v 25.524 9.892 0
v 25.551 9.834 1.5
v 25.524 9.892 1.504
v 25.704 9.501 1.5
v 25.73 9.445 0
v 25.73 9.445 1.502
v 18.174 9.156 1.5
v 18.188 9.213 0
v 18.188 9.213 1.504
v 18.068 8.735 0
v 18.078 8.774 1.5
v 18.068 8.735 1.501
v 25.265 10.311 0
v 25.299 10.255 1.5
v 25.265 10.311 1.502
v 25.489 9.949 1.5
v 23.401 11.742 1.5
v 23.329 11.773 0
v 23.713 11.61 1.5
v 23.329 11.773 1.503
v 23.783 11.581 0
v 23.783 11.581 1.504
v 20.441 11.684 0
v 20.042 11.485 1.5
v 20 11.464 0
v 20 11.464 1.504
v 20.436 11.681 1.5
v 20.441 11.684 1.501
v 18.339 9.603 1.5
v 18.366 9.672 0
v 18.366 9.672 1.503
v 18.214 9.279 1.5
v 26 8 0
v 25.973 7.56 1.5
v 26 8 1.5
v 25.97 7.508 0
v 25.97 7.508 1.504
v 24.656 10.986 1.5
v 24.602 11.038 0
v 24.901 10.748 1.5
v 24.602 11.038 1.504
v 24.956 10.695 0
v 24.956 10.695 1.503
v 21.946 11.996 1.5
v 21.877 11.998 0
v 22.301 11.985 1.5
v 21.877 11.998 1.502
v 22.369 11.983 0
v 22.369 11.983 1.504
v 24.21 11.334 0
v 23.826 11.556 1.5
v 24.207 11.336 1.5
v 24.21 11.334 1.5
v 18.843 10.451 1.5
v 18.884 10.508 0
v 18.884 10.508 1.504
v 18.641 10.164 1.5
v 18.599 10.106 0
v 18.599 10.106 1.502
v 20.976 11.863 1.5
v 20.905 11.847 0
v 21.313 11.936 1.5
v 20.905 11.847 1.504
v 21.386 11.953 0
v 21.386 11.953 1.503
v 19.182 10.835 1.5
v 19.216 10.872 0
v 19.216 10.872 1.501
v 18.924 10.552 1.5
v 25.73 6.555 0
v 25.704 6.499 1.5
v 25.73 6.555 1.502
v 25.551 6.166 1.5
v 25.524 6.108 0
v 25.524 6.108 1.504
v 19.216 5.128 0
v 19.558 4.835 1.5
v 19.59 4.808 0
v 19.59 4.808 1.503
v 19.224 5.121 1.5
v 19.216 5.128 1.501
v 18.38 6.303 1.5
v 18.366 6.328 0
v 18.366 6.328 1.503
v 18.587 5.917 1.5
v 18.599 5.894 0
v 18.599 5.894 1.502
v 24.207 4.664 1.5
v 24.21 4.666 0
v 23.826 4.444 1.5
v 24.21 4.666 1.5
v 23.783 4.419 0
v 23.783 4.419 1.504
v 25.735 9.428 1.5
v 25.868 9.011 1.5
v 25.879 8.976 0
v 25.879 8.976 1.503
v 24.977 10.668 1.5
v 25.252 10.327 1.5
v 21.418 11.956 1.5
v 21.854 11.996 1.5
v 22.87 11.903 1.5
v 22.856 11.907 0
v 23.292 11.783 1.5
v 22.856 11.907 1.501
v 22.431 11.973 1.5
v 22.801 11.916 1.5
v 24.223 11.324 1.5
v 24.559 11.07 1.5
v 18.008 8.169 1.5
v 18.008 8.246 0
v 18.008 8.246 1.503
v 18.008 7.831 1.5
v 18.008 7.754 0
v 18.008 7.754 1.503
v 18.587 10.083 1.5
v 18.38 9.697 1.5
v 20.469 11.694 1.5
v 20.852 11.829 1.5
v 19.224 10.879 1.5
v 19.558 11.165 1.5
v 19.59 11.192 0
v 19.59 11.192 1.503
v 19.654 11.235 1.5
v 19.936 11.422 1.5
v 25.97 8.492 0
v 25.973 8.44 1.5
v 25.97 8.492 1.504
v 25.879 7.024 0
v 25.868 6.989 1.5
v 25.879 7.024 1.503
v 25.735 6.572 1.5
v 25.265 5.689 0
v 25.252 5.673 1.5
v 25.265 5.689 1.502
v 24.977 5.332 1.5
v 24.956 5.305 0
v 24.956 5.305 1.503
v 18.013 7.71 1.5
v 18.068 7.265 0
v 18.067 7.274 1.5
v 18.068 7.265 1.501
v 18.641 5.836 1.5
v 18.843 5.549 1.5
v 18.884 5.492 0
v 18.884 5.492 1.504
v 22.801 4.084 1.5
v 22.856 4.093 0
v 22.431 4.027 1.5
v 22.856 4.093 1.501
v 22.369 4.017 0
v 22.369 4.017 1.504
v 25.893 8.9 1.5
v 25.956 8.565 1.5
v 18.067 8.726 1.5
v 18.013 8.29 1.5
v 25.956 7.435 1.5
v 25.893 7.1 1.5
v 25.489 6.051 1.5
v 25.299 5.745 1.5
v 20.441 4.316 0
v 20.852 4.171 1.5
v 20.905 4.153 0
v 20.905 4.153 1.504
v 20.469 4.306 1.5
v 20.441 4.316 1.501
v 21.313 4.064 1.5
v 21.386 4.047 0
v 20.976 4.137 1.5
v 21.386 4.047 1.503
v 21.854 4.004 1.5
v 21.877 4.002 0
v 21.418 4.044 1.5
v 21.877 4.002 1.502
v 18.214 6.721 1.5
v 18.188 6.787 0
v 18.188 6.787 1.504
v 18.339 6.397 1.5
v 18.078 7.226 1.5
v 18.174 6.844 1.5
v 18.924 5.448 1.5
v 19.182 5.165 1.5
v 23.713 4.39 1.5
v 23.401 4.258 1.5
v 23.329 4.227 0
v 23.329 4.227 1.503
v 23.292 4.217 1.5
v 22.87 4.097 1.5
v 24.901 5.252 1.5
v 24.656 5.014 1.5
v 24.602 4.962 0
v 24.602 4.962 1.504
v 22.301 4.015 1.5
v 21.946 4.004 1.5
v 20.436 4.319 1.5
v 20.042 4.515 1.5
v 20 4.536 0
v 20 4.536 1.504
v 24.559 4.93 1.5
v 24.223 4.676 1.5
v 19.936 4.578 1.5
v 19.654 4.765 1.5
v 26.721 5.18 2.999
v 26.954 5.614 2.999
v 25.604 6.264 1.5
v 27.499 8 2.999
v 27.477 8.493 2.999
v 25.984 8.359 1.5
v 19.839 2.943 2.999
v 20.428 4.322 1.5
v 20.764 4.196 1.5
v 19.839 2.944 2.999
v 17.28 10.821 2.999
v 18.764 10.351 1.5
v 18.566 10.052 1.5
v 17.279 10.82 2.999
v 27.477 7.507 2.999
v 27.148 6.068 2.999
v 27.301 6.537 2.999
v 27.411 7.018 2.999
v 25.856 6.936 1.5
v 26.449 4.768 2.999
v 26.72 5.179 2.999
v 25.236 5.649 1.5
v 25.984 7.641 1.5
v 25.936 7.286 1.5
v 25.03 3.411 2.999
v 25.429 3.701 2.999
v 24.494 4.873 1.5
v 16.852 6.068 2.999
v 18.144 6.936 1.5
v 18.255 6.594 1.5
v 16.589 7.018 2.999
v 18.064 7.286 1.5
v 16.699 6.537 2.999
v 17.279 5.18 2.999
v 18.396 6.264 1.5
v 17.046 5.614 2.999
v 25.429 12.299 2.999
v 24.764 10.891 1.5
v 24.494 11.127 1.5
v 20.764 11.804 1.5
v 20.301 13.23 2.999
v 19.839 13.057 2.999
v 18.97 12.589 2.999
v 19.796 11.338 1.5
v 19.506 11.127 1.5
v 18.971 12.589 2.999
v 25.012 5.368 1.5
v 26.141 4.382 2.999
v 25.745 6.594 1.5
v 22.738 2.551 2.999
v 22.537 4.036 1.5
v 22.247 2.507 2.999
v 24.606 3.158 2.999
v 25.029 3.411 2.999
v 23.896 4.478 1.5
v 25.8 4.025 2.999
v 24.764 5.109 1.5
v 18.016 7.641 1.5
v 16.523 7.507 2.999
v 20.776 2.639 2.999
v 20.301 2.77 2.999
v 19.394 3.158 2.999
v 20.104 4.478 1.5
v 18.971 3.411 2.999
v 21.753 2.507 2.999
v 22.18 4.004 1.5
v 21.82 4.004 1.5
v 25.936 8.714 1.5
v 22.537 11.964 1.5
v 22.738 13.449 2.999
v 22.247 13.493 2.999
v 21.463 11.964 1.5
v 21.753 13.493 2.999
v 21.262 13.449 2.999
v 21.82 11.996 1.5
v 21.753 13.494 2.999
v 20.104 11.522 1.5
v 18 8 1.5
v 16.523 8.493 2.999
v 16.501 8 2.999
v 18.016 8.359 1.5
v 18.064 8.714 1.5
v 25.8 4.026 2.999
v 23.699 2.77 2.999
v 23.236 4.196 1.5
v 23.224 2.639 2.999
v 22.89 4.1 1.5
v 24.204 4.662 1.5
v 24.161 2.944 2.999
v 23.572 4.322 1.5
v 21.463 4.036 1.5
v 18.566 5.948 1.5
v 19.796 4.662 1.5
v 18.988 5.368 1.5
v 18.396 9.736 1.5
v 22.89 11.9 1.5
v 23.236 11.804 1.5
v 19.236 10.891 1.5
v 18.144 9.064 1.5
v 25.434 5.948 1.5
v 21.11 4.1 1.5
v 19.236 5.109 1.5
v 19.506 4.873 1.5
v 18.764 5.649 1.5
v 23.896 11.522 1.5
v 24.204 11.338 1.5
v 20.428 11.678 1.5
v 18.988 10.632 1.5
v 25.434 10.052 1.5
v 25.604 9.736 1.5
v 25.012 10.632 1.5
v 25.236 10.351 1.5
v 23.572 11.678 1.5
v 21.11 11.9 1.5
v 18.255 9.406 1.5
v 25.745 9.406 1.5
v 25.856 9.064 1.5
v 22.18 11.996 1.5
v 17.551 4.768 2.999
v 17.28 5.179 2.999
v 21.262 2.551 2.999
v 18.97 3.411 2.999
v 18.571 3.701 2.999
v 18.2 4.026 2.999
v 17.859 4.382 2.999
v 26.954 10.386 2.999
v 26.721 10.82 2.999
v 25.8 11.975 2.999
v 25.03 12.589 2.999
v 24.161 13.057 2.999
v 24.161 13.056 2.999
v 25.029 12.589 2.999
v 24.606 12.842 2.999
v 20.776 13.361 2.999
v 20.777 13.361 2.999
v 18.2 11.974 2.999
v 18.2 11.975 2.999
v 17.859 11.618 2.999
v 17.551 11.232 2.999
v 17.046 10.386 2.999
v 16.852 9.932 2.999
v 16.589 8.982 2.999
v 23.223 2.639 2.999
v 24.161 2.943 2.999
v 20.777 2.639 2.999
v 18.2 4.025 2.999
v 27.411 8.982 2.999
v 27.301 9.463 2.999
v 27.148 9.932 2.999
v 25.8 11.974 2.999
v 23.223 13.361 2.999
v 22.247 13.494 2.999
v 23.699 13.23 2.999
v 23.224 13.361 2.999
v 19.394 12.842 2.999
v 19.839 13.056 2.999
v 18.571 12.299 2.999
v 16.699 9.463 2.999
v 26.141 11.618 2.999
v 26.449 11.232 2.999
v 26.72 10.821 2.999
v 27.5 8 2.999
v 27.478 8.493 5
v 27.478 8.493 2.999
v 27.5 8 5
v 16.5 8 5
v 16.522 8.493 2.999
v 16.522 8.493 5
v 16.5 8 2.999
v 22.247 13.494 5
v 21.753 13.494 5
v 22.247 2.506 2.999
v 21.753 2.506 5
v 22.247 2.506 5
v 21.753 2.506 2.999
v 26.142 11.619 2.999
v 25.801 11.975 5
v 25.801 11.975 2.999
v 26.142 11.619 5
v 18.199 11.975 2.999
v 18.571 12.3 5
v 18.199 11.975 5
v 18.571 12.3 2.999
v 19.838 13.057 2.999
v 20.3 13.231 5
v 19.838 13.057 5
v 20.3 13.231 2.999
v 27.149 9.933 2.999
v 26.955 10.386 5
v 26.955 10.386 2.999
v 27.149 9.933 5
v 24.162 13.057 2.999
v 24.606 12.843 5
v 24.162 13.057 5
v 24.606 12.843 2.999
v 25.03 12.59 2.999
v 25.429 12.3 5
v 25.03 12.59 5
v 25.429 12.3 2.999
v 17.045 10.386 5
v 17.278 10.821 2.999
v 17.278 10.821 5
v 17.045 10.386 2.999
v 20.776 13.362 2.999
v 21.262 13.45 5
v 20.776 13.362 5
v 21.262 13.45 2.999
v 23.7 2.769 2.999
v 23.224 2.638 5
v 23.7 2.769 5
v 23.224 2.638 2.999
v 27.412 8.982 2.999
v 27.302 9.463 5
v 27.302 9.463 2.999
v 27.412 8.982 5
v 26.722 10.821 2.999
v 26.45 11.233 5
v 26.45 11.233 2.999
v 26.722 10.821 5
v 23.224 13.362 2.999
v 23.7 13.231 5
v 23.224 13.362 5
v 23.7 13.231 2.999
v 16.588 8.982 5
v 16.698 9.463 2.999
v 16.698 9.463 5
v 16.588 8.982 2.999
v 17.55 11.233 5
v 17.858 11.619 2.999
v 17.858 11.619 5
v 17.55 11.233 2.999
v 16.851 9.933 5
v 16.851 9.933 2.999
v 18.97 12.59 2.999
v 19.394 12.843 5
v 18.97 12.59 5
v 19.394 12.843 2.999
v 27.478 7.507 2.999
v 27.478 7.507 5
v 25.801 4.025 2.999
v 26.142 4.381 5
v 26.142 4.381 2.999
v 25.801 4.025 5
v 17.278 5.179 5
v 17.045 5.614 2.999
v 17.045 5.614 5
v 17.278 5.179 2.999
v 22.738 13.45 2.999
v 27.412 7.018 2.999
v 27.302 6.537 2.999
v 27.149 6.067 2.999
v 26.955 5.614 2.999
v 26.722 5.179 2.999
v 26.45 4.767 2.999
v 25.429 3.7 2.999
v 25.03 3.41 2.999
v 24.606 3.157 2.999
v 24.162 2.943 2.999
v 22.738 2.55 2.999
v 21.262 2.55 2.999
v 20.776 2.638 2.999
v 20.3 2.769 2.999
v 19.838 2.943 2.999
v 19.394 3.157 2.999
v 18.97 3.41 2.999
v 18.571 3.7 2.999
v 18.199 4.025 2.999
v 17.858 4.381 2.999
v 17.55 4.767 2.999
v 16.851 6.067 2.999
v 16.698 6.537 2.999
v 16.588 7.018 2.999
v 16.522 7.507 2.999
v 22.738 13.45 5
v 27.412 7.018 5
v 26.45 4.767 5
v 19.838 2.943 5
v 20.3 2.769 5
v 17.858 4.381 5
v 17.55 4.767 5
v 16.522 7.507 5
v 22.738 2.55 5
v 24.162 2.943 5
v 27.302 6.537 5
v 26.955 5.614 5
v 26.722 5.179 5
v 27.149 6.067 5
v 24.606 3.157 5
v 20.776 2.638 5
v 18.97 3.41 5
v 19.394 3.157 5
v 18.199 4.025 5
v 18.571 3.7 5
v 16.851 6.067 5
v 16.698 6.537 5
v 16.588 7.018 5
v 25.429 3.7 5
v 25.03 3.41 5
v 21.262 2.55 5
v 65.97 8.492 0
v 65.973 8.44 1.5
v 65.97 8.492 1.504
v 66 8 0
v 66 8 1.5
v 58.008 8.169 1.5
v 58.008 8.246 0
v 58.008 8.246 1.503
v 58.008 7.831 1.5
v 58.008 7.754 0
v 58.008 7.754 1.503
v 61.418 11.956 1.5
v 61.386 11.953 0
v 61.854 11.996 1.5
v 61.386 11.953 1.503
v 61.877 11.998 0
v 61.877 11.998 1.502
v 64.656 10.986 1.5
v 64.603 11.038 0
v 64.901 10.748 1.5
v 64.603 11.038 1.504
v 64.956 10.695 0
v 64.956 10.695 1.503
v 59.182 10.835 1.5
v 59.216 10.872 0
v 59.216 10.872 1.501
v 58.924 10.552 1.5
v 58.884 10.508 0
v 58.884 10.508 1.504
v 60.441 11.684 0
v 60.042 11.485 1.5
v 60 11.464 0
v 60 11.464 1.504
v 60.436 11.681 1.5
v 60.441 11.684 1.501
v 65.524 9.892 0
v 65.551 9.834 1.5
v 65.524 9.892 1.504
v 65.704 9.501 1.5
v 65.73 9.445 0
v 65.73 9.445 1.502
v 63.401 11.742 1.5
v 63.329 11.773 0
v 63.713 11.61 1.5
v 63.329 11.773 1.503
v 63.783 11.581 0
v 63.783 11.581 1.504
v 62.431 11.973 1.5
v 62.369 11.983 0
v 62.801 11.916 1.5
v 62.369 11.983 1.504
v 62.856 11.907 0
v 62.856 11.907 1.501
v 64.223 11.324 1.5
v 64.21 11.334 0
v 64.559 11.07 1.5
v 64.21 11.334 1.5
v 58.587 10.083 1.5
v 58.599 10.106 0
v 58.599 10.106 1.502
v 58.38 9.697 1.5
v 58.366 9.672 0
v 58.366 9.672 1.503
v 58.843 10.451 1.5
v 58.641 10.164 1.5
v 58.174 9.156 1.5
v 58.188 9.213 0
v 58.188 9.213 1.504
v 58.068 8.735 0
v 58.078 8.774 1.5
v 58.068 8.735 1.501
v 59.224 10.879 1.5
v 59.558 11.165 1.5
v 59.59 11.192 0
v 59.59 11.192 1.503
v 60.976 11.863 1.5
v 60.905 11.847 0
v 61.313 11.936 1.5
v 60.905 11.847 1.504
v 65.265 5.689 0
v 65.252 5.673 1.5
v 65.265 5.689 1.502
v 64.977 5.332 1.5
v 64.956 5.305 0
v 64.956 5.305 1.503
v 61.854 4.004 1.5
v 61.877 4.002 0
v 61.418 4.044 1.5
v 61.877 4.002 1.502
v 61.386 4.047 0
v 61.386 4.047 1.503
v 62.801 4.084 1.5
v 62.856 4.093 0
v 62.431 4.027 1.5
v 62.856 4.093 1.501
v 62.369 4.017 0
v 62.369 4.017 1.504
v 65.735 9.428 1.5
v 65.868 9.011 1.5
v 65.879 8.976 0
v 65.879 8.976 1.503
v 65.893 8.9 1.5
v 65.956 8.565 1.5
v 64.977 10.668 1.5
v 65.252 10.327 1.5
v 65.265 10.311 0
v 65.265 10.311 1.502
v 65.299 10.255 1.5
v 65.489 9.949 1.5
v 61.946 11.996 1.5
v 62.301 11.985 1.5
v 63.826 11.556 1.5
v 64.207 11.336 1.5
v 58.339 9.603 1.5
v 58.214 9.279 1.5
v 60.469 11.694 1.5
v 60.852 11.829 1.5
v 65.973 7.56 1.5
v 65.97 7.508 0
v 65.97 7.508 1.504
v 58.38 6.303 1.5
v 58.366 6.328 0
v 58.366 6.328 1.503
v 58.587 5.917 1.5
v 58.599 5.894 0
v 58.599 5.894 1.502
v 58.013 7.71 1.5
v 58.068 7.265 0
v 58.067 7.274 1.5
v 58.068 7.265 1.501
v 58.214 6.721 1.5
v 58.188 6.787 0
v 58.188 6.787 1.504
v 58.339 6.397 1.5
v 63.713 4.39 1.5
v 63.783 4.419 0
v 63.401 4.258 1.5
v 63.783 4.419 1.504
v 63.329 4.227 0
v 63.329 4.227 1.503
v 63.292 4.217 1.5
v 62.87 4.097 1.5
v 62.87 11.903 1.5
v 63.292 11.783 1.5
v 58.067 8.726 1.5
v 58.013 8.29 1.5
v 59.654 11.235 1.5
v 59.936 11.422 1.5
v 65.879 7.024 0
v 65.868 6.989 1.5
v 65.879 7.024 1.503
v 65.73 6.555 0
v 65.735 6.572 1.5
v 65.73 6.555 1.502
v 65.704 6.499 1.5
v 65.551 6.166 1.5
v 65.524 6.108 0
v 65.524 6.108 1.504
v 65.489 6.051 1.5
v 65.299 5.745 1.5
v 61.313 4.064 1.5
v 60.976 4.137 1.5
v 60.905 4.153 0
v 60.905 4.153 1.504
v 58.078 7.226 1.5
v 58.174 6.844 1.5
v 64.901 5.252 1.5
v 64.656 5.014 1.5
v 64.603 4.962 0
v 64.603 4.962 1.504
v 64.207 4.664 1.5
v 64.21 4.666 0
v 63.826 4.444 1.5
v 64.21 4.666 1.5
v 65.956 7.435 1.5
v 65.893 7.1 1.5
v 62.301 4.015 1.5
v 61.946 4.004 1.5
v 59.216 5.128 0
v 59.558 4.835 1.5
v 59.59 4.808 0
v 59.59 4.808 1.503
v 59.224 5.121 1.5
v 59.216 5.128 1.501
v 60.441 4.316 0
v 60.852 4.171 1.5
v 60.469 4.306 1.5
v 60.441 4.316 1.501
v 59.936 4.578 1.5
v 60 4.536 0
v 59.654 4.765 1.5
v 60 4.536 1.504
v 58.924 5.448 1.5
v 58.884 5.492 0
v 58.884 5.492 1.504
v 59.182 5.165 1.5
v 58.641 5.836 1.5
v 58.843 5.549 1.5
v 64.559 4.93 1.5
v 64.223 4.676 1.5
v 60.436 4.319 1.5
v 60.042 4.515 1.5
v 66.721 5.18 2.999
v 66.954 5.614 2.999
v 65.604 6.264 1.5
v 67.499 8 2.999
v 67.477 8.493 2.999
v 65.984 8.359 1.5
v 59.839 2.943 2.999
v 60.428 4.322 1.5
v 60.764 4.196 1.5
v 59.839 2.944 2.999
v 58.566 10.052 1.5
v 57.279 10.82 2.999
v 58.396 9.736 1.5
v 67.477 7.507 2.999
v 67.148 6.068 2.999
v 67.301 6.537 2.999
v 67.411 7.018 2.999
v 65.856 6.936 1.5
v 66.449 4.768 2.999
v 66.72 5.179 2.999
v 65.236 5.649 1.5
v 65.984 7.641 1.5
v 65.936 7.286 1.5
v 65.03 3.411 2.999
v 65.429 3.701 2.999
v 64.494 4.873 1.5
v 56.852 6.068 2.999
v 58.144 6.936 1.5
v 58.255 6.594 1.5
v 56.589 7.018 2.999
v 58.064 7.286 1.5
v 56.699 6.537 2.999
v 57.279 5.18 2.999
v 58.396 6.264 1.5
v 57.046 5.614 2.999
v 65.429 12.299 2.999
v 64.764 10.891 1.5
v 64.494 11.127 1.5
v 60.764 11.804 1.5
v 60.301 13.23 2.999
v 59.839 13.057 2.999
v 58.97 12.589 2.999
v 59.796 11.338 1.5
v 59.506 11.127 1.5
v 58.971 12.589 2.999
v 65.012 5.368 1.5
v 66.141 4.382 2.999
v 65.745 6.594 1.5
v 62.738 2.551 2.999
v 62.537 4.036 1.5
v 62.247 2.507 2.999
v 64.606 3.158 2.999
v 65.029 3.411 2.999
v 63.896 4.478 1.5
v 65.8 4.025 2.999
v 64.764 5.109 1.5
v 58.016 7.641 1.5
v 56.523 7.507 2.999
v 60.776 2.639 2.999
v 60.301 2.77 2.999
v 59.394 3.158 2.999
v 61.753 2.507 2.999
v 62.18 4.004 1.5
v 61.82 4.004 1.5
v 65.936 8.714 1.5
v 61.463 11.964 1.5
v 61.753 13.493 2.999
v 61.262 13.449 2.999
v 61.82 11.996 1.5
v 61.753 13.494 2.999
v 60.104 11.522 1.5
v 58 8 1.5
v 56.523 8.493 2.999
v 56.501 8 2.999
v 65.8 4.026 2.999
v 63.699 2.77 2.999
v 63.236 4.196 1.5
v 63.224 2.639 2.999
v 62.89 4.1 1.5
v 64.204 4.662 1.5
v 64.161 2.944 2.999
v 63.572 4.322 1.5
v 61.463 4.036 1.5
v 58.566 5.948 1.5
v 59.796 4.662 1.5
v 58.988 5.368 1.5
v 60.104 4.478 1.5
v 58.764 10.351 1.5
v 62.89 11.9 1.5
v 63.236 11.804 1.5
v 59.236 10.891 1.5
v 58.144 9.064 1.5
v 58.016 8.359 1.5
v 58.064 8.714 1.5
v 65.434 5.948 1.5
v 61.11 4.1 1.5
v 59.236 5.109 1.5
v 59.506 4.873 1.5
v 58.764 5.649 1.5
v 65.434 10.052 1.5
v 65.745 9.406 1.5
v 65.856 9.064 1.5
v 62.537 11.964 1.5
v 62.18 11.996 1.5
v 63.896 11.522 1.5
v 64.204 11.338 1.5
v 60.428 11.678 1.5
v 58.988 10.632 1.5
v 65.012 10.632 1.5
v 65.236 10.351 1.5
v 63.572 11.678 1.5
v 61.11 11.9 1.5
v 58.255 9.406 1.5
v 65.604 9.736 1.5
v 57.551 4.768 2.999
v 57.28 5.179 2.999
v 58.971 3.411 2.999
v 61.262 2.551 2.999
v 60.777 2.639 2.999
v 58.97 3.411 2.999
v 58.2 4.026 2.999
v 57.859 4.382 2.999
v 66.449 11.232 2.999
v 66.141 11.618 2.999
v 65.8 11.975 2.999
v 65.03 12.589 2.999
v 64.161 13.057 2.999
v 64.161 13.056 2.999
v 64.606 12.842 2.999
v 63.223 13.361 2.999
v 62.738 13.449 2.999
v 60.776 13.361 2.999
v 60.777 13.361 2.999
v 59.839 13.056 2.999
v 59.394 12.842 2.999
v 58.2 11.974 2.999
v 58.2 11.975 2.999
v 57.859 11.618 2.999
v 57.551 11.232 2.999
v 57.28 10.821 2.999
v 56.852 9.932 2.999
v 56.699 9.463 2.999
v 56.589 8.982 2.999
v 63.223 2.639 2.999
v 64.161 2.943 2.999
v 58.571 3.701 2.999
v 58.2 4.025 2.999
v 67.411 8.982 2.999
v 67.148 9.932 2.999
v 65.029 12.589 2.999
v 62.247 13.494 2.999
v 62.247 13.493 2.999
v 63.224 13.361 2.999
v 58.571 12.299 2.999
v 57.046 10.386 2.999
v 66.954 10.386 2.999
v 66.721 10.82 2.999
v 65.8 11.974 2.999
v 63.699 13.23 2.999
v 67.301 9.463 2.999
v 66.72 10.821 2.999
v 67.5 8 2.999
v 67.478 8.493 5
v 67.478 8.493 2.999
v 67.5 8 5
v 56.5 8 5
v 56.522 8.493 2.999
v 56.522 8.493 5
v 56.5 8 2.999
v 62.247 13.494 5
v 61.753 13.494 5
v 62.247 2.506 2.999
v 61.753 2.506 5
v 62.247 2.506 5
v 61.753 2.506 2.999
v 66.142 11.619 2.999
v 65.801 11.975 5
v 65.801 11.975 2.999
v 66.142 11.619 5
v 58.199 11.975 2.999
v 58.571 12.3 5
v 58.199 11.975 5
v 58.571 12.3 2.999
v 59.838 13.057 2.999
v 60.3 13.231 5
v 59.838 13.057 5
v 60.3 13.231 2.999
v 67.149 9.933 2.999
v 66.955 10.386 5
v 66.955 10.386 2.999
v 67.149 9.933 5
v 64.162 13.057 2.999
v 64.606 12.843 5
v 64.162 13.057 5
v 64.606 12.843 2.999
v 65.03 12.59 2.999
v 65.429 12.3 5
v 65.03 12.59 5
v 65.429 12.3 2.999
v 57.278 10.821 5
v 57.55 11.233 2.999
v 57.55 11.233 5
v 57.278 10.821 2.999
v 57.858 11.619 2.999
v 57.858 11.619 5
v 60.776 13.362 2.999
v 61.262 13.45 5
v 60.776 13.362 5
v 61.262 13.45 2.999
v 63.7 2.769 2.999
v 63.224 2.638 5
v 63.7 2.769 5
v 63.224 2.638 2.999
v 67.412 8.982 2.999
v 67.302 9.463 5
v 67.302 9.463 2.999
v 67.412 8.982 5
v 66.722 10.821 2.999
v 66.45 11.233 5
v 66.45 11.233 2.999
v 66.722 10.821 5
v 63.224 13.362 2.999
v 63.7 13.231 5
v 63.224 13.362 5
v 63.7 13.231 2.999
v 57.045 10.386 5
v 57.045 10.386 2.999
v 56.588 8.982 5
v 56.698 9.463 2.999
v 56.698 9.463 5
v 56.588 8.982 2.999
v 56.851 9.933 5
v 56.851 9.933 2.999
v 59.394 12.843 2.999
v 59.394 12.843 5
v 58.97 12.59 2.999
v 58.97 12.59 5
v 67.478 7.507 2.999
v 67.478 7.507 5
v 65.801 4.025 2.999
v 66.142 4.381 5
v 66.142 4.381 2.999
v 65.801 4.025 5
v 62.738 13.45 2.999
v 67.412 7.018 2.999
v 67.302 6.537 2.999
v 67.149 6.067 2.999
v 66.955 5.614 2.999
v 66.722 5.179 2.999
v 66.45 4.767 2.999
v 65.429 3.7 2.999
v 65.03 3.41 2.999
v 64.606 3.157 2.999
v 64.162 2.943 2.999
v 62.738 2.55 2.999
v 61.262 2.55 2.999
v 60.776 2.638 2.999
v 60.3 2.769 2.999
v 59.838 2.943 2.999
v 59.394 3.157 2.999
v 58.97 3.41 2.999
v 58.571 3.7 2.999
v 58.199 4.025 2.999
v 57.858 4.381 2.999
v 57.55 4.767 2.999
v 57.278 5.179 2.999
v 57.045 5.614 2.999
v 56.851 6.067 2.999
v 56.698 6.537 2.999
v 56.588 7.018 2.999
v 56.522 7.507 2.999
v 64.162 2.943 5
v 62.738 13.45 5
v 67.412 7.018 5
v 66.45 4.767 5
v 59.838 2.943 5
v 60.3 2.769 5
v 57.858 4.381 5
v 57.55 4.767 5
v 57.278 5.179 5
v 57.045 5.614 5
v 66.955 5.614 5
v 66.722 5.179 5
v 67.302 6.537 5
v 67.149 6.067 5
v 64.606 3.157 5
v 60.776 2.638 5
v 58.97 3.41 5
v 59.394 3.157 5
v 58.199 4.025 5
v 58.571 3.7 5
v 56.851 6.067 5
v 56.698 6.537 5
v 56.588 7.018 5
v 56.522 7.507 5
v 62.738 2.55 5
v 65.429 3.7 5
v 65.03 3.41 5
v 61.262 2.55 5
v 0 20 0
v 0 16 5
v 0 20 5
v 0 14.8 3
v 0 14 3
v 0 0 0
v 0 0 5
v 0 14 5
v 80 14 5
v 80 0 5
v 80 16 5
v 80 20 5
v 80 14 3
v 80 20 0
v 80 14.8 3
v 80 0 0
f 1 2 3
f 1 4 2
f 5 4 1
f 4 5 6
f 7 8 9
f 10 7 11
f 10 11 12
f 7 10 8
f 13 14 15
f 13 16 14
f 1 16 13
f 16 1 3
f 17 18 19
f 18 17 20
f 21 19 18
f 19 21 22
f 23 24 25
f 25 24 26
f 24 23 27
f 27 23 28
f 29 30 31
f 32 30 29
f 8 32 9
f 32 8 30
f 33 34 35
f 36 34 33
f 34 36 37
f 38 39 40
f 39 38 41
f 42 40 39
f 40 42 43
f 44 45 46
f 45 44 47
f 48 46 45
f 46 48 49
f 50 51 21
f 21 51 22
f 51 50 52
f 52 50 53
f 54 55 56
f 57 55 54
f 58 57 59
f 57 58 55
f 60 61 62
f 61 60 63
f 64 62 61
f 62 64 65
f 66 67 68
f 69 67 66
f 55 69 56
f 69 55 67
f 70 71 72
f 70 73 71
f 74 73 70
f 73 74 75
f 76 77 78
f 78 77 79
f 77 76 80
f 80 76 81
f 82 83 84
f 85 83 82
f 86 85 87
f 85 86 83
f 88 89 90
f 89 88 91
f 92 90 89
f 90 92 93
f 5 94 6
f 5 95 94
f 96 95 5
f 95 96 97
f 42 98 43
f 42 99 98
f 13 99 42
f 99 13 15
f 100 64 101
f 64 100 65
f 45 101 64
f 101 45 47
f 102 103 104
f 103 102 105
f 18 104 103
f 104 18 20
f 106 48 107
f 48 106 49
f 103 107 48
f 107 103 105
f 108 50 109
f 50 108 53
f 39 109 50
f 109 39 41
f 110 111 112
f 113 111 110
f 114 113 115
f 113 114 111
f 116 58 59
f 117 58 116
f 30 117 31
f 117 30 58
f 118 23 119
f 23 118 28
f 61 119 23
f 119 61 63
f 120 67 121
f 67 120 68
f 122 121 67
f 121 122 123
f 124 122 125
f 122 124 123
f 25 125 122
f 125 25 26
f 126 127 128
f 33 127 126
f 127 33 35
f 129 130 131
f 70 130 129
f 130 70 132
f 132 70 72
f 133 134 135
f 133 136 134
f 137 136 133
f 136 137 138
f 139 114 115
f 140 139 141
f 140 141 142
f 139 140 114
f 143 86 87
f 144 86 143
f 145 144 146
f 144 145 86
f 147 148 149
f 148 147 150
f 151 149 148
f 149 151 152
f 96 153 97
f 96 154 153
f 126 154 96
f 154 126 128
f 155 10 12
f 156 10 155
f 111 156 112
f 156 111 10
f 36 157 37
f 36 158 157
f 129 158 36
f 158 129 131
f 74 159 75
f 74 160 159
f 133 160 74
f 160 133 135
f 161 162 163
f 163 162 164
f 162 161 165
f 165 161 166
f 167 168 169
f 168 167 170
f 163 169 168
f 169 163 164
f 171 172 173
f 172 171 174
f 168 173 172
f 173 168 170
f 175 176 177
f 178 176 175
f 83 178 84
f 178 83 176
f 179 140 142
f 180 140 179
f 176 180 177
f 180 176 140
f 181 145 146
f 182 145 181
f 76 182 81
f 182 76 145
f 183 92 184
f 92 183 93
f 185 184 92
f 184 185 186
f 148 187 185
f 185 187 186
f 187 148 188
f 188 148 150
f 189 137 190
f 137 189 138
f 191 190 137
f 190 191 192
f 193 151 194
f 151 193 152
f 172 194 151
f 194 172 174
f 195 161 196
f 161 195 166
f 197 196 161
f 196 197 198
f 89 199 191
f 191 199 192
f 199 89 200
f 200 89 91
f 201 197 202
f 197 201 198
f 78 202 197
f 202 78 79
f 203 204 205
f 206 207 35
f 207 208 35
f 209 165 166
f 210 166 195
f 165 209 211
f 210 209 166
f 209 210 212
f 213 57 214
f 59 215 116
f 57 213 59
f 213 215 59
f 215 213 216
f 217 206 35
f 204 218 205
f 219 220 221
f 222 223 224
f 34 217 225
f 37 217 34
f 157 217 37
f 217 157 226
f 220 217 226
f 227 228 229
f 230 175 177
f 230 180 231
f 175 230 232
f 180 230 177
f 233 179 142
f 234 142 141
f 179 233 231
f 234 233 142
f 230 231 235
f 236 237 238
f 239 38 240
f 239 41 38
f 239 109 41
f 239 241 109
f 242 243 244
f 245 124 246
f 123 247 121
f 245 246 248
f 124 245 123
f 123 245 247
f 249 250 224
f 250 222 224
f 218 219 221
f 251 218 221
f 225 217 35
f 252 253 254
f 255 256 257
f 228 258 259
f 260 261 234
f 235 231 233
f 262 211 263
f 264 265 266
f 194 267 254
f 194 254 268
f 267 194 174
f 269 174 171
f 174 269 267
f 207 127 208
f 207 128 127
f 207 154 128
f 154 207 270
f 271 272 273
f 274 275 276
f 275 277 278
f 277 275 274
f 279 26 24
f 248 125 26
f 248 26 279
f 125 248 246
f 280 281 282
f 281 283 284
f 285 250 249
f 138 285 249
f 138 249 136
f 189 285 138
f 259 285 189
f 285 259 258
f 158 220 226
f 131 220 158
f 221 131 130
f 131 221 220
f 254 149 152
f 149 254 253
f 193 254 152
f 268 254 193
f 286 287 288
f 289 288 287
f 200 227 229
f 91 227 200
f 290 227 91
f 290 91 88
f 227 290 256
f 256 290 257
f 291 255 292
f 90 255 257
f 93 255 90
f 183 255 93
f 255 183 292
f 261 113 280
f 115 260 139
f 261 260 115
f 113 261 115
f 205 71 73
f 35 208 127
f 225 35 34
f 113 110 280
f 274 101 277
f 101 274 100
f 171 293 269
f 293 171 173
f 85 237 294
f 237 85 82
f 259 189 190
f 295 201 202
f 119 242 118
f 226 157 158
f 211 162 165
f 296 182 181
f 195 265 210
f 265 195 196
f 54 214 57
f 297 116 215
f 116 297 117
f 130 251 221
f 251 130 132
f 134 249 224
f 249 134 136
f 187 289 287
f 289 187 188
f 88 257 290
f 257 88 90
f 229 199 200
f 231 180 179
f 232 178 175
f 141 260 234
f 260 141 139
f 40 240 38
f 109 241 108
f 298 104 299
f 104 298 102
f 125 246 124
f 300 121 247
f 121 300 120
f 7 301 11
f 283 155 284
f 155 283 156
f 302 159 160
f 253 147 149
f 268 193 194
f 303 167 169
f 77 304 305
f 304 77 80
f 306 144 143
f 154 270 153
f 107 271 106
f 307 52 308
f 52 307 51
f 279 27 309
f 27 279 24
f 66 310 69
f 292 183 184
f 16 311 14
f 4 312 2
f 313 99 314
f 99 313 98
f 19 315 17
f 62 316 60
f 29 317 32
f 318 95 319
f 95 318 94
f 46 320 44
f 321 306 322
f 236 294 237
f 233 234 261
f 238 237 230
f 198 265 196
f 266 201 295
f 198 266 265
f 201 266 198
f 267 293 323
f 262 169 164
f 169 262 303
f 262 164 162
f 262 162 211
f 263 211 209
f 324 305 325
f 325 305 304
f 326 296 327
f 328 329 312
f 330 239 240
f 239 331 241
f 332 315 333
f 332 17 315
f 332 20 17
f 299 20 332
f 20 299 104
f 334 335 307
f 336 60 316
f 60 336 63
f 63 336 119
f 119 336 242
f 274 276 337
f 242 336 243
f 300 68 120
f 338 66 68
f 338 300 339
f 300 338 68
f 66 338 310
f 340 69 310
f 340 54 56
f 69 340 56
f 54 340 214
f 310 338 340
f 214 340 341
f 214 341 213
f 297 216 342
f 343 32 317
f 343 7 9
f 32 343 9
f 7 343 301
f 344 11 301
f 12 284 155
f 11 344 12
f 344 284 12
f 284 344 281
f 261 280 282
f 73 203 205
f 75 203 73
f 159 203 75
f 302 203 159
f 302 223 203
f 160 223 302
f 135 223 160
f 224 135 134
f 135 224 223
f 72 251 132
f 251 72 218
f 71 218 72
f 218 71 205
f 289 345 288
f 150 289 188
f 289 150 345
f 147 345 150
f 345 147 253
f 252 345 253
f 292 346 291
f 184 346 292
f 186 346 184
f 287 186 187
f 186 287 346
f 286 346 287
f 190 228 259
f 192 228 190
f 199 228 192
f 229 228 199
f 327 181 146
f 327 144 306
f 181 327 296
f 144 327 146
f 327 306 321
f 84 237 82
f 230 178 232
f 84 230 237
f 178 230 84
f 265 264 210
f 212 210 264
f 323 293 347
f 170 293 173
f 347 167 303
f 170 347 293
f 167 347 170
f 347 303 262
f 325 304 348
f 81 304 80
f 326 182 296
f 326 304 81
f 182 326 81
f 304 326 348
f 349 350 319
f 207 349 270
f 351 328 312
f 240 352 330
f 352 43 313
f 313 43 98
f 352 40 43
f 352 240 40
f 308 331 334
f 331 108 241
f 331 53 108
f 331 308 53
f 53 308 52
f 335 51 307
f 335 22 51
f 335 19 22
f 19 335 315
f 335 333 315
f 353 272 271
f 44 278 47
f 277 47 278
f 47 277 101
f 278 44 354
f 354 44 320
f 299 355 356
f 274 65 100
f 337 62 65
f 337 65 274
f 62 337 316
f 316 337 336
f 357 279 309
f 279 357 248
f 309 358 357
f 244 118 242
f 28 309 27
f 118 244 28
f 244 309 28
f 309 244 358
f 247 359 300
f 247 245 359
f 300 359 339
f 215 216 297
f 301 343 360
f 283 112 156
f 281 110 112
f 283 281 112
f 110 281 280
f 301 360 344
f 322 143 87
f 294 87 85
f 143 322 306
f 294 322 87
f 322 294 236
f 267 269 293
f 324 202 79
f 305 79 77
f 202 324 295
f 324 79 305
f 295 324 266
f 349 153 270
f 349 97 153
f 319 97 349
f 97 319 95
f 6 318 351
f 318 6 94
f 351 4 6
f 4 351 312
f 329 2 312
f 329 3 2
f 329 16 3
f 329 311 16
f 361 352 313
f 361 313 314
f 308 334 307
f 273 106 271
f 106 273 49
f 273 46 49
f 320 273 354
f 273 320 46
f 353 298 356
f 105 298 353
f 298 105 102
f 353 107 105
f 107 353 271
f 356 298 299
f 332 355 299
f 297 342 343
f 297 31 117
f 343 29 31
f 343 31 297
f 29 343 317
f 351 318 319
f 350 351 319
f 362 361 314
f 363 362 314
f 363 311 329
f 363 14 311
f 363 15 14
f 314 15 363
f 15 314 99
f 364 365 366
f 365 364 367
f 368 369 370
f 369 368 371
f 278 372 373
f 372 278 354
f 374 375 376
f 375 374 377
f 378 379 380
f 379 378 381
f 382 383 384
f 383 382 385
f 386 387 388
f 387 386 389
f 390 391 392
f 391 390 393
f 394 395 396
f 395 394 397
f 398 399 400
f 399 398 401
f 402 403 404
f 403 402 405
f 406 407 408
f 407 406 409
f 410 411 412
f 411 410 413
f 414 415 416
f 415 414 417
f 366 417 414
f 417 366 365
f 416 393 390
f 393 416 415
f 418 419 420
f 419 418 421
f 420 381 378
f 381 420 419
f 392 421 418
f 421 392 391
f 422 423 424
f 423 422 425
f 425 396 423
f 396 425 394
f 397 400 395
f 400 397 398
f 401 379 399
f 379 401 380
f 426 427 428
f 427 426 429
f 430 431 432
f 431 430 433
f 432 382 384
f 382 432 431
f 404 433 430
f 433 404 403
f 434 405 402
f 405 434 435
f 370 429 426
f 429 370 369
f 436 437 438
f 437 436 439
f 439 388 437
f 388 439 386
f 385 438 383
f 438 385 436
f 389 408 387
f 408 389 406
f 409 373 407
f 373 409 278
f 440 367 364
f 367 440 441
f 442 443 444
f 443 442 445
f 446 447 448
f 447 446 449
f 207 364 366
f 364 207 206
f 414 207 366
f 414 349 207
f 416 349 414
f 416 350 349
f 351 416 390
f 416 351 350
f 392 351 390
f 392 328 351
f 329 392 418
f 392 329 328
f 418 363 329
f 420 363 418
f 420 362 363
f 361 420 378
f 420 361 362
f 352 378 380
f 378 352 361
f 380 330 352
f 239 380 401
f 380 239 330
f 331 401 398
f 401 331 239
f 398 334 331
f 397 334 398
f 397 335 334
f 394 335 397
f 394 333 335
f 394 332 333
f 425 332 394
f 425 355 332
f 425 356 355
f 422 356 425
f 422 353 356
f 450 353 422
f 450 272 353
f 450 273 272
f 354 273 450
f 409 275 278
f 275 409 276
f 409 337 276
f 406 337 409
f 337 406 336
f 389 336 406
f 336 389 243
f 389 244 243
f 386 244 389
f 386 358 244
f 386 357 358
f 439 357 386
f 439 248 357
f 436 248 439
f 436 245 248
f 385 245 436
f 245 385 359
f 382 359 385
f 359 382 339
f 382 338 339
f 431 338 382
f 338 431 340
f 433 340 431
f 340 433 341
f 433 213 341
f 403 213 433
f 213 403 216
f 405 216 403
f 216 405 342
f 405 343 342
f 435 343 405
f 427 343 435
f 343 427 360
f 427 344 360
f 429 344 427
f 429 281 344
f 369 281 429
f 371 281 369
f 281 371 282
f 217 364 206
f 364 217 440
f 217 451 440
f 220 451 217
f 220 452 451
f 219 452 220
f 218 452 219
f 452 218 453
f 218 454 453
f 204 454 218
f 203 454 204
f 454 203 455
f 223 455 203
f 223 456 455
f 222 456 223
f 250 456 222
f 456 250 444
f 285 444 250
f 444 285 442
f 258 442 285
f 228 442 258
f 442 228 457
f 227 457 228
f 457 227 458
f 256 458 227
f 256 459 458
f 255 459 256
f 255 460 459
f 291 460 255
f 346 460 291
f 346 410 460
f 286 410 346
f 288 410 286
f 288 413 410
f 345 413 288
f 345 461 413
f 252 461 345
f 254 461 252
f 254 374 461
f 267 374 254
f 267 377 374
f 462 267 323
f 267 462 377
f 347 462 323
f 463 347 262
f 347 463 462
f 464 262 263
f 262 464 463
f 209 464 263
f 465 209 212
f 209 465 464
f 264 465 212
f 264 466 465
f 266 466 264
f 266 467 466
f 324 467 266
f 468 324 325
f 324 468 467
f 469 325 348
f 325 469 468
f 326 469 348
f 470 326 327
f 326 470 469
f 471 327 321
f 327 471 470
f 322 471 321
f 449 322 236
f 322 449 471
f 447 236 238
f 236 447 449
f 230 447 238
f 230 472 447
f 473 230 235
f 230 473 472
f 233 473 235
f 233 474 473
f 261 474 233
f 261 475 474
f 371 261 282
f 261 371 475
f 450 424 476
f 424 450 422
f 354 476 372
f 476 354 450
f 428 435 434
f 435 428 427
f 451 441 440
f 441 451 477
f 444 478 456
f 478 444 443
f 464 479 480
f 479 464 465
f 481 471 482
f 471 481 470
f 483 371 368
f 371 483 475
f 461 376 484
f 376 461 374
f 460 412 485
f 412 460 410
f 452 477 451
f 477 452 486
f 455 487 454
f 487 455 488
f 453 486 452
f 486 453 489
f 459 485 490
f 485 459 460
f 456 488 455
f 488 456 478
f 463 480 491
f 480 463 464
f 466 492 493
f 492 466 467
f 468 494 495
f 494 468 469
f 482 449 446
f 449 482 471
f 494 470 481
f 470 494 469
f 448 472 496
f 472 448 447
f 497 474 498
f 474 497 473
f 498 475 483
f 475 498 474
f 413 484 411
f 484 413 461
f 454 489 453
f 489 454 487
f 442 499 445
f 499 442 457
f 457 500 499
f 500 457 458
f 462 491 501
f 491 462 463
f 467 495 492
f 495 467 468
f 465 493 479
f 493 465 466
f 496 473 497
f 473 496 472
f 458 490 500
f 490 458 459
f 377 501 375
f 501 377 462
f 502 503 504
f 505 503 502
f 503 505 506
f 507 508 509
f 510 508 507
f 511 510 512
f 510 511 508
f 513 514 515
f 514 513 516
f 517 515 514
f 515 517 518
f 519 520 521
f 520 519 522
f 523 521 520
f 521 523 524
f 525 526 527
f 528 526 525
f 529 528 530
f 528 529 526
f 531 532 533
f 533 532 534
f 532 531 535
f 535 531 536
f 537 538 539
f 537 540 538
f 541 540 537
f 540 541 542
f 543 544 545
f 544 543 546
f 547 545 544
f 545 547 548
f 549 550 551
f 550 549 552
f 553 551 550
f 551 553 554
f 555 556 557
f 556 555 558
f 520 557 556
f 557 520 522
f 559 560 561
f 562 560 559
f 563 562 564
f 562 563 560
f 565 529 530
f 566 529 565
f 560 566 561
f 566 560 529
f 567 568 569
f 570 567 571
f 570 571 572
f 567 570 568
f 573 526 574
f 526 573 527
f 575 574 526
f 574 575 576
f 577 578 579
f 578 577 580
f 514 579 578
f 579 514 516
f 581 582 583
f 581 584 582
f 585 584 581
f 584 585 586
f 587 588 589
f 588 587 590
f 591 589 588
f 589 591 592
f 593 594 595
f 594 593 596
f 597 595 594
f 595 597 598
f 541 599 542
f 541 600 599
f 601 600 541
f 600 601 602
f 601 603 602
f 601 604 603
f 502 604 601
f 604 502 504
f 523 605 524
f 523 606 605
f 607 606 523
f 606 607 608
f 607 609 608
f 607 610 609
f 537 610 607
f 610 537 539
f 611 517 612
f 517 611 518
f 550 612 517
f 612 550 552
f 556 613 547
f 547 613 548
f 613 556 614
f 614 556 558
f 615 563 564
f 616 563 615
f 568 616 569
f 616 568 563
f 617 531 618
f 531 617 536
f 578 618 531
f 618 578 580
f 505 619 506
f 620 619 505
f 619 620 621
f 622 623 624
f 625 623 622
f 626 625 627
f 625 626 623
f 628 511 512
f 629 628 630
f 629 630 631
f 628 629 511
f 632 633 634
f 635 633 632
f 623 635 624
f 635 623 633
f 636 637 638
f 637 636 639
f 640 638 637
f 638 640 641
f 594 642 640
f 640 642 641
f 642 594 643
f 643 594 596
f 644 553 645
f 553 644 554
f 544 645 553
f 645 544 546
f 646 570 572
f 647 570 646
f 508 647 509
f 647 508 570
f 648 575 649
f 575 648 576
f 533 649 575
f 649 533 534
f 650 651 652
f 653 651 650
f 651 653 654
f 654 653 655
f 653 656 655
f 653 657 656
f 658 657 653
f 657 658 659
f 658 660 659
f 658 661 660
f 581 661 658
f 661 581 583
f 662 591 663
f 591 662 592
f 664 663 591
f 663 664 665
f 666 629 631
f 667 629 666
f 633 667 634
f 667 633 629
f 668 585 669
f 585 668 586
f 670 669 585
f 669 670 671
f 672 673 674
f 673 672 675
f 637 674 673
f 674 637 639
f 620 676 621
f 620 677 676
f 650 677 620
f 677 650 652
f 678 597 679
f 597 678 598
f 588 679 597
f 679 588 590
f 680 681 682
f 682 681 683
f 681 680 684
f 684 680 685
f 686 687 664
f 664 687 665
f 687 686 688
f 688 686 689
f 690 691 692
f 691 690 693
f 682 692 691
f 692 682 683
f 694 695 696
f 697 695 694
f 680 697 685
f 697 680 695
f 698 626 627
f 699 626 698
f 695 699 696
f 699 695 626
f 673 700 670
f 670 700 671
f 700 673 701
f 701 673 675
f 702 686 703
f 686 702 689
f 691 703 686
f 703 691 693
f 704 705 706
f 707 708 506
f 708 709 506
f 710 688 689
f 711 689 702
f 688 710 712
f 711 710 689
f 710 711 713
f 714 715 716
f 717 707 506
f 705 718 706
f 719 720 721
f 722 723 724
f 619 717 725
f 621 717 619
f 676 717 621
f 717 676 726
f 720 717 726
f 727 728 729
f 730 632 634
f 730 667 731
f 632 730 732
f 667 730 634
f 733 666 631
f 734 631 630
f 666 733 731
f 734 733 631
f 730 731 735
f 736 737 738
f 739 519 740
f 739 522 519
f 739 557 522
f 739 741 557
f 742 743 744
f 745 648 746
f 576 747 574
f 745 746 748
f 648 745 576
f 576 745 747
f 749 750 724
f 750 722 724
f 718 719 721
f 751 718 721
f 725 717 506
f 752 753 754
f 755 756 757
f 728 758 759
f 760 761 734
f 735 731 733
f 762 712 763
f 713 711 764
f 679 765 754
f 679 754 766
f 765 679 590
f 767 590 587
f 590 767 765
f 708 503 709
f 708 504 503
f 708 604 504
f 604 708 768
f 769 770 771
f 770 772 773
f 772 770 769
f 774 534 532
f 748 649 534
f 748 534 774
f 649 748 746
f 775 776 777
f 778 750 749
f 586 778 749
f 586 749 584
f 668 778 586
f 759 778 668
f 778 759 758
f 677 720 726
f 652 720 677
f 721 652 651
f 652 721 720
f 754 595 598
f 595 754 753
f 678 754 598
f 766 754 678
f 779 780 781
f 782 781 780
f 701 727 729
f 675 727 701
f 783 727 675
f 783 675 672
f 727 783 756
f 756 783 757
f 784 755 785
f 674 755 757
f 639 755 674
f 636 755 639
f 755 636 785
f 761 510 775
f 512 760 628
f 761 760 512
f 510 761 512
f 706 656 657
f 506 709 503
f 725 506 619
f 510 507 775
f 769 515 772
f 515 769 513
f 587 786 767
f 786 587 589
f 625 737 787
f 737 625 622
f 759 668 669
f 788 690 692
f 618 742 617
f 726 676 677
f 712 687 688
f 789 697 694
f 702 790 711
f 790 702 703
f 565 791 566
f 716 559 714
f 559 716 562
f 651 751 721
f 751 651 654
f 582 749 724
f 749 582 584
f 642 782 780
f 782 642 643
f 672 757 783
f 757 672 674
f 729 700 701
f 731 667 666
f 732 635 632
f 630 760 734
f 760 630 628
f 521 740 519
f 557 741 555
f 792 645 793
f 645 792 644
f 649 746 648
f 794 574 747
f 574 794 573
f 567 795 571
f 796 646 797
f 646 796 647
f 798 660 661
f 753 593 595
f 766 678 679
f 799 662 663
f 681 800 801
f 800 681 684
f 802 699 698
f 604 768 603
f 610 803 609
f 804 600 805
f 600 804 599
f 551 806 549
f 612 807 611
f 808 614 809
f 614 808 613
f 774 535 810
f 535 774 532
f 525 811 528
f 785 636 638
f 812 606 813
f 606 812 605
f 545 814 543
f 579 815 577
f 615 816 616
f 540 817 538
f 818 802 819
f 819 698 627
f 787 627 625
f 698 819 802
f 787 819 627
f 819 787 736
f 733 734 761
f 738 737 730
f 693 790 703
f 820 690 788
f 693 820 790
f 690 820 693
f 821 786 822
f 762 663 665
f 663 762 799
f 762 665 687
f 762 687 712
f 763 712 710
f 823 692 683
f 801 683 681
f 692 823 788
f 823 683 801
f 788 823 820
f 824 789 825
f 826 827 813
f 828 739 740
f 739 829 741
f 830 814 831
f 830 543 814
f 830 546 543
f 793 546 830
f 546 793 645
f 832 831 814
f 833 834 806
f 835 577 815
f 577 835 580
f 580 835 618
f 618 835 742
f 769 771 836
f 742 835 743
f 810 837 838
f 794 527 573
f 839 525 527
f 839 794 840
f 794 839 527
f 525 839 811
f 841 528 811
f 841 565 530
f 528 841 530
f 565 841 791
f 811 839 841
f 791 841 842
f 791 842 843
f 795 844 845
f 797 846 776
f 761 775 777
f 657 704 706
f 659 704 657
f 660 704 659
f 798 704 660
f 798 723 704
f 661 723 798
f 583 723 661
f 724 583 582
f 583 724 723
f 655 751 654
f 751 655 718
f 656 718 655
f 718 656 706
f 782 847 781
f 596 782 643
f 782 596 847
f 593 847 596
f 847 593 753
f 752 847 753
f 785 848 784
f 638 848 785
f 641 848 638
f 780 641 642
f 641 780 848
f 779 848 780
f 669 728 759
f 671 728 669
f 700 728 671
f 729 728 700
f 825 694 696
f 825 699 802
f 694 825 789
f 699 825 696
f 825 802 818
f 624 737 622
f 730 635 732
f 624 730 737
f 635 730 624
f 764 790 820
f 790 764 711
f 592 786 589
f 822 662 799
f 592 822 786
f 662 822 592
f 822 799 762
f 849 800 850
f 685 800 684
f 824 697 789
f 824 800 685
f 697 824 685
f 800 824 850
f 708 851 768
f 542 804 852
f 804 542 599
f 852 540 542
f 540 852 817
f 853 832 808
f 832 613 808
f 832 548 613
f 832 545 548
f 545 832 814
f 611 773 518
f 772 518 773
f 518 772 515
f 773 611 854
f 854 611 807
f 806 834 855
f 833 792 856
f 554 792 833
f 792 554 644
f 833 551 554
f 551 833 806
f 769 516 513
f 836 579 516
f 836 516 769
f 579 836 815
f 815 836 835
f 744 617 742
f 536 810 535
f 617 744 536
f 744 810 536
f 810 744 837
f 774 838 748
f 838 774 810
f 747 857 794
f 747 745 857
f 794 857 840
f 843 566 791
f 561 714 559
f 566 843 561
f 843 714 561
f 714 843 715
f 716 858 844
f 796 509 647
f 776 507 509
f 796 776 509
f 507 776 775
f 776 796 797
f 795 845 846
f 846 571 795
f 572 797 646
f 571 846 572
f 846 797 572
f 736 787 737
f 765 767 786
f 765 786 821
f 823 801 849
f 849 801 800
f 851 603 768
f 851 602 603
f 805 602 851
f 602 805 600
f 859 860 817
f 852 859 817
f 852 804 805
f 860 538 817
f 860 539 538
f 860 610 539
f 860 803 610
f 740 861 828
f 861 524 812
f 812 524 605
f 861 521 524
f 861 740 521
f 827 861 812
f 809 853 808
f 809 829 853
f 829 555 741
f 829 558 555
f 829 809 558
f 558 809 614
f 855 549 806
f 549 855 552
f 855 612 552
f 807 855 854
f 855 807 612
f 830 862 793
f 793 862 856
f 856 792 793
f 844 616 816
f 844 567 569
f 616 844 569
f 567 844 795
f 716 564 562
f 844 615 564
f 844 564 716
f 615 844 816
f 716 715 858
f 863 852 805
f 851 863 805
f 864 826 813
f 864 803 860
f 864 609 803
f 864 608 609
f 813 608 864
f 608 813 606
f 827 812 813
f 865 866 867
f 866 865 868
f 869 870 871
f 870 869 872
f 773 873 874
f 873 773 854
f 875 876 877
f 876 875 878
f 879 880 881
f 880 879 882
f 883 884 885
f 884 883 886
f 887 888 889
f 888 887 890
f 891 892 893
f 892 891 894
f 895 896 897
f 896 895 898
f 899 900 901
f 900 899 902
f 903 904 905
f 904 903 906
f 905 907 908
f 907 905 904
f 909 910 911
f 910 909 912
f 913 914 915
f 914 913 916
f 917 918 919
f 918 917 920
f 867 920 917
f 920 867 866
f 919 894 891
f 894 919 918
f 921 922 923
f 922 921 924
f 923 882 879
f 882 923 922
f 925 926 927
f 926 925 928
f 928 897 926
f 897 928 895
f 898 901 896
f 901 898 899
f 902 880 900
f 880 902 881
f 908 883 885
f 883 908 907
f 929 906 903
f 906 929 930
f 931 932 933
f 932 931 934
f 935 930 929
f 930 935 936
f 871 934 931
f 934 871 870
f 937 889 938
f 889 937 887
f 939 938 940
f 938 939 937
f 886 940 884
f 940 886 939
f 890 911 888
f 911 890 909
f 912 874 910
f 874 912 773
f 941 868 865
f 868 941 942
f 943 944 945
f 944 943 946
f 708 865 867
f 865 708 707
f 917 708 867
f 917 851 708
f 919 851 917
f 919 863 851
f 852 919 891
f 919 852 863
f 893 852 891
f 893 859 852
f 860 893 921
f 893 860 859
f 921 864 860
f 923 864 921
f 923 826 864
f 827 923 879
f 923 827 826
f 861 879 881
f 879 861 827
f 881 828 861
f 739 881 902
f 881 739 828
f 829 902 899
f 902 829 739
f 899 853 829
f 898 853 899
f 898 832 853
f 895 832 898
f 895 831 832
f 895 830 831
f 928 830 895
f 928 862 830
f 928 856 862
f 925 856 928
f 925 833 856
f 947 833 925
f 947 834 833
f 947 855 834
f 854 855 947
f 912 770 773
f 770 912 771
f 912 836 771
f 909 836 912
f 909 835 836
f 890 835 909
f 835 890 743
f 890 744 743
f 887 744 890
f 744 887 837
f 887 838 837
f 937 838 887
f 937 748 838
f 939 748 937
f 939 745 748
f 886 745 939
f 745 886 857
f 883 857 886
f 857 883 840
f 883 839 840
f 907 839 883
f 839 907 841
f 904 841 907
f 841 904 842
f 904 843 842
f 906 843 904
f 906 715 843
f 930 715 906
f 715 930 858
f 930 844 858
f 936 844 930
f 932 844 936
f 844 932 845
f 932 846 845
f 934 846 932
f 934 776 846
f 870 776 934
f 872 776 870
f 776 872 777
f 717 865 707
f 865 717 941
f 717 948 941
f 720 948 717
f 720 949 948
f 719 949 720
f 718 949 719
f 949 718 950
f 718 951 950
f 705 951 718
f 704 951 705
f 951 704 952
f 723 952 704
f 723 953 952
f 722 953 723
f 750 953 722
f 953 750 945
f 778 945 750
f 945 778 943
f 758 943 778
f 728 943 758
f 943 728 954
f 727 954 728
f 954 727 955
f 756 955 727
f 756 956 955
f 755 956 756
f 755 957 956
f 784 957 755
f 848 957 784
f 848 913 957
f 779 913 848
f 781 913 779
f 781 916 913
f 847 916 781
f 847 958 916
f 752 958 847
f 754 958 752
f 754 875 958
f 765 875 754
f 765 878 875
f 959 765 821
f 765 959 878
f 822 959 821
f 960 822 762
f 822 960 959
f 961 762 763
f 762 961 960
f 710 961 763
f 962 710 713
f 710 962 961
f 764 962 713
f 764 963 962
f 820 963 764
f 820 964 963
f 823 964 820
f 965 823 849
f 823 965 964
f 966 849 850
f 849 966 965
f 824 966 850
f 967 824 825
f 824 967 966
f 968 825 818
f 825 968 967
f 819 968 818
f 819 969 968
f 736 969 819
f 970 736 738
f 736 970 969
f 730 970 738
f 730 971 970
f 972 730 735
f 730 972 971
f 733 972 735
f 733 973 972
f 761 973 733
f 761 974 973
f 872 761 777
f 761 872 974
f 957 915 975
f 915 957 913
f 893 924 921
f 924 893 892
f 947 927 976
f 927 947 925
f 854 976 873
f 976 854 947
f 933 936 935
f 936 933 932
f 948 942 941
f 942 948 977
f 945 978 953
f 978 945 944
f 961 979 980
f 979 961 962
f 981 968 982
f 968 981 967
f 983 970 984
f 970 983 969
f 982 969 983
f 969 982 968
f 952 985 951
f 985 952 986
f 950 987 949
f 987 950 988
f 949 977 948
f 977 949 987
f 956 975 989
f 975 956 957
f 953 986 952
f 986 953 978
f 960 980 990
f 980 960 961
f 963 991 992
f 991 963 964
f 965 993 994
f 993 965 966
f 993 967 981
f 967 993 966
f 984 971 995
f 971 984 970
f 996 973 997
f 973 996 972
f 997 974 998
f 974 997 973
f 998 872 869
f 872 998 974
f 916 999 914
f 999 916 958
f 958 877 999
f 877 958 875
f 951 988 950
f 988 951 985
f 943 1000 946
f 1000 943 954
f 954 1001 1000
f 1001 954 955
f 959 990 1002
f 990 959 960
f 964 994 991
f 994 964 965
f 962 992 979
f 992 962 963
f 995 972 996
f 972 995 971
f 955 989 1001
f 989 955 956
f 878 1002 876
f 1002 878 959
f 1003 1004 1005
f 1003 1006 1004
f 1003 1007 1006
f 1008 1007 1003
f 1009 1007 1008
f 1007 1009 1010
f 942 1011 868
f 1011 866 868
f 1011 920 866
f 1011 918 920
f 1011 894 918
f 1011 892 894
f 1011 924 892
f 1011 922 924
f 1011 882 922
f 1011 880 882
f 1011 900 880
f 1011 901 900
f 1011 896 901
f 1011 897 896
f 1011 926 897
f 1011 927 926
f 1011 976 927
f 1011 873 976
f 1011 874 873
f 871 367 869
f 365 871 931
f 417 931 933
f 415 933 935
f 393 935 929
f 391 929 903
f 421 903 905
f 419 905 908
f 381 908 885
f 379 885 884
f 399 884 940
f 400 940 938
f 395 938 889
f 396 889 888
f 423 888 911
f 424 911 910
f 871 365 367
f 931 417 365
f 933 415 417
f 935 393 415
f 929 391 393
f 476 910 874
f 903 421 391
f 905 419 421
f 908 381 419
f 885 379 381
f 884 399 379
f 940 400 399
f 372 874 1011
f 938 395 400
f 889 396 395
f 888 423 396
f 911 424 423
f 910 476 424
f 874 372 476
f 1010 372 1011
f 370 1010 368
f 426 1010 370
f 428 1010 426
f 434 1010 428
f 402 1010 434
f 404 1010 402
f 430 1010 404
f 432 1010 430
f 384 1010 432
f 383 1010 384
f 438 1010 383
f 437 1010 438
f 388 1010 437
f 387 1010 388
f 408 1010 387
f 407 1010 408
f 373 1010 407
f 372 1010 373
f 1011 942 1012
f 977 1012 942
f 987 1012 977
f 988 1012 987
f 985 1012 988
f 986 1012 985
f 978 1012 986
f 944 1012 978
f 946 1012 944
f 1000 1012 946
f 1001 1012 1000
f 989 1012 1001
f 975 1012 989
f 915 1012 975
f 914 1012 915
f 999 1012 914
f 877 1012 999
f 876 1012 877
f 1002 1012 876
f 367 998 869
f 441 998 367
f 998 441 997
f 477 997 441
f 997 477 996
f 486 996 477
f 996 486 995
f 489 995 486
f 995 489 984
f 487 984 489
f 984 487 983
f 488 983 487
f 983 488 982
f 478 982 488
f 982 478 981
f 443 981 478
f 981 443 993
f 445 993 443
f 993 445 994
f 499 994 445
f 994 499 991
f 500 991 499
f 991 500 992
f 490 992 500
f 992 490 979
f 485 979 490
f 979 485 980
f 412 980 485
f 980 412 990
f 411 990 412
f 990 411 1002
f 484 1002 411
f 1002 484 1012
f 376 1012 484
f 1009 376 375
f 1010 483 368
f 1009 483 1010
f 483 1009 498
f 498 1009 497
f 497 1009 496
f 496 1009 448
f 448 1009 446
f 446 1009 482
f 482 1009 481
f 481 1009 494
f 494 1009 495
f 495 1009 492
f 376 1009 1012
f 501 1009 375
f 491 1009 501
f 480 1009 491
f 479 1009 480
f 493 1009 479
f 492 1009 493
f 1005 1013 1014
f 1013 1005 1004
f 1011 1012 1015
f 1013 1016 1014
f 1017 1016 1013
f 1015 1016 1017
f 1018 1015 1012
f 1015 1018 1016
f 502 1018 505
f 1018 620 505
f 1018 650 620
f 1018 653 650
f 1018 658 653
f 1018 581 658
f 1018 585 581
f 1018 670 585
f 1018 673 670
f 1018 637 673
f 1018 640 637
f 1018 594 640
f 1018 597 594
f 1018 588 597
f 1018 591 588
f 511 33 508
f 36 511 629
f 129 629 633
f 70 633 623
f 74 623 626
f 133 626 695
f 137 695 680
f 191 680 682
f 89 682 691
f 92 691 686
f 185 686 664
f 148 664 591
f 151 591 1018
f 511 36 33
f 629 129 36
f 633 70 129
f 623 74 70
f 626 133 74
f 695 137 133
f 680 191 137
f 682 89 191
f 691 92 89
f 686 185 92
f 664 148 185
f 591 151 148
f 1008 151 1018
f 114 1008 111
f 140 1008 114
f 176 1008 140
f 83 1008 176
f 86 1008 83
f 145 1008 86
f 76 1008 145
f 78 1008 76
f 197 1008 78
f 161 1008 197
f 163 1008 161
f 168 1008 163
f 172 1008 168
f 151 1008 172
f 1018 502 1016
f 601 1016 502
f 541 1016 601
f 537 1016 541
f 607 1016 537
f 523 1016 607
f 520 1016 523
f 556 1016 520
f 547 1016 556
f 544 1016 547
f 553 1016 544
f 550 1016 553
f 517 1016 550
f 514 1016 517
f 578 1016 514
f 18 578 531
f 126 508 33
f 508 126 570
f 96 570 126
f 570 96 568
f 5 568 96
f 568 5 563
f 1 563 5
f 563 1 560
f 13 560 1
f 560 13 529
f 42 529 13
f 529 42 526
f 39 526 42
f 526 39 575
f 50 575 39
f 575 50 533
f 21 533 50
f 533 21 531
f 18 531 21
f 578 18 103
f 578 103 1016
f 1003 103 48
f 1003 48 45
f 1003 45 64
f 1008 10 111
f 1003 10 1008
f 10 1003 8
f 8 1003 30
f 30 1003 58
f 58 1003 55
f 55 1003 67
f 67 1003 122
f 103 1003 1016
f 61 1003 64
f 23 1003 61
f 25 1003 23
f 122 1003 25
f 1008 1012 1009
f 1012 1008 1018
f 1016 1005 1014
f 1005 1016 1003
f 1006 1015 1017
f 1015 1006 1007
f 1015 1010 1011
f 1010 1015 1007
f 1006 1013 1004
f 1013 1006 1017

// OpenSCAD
/*
 * global defines
 */
$fa=2;
$fs=0.5;
quadrant=0; /// xy grid quadrant to place the
           /// main construction geometry in
           /// 0 = centered

// jaw: basic jaw slab
jaw_length=80;
jaw_width=20;
jaw_thickness=5;

// bolt: bolt hole carvout
bolt_radius=4;
bolt_x_offset=2;  /// x/y offsets account for bolt hole locations
bolt_y_offset=-2; /// being slightly out in manufacturing
bolt_sink=2;      // sink the bolt head deeper into the jaw
bolt_distance=40; // distance between bolt centers
bolt_chamfer=1.5; // 45° chamfer will be applied

// slot: slot/groove to be made in the jaw
slot_inner_width=0.8;   // slot width at deepest point
slot_chamfer_width=1.2; // extra width from chamfer
slot_depth=2;
slot_ratio=1.0;   // location of slot as a proportion of jaw
slot_y_offset=-6; // offset applied on top of slot_ratio


/*
 * module and function definitions
 */
// bolt object composed of main cylinder, chamfer cone,
// and optional extra cylinder to sink the bolt down
module bolt(h,r) {
	translate([0,0,-1]) cylinder(h=h+1,r=r);
	translate([0,0,h-bolt_chamfer-bolt_sink])
		cylinder(h=bolt_chamfer,r1=r,r2=r+bolt_chamfer);
	translate([0,0,h-bolt_sink-.001])
		cylinder(h=bolt_sink+1,r=r+bolt_chamfer);
}

// return the center point between the two bolts
function bolt_center() =
	[
		jaw_length/2-bolt_distance/2+bolt_x_offset,
		jaw_width/2+bolt_y_offset,
		0
	];

// slot object which is narrow at the deepest part and then
// widens in a chamfer to a maximum as it reaches the surface
module slot(length) {
//	translate([-1,0,0])
//		cube([length+2, slot_inner_width, slot_depth+1]);
	translate([length+1,0,0])
		rotate([90,0,-90])
		linear_extrude(height=length+2)
			polygon([
				[0,-slot_depth],
				[slot_inner_width,-slot_depth],
				[slot_inner_width,1],
				[-slot_chamfer_width,1],
				[-slot_chamfer_width,0],
				[0,-slot_depth]		
			]);
};

// return the position of the slot (bottom of y)
function slot_position(raio=0.5,offset=0) =
	[
		0,
		jaw_width*ratio+slot_inner_width+offset,
		jaw_thickness
	];


/*
 * main construction geometry
 */
difference() {
	cube([jaw_length, jaw_width, jaw_thickness]);
	translate(bolt_center()) {
		bolt(h=jaw_thickness, r=bolt_radius);
		translate([bolt_distance,0,0])
			bolt(h=jaw_thickness, r=bolt_radius);
	}
	translate(slot_position(ratio=slot_ratio,offset=slot_y_offset))
		slot(jaw_length);
}
